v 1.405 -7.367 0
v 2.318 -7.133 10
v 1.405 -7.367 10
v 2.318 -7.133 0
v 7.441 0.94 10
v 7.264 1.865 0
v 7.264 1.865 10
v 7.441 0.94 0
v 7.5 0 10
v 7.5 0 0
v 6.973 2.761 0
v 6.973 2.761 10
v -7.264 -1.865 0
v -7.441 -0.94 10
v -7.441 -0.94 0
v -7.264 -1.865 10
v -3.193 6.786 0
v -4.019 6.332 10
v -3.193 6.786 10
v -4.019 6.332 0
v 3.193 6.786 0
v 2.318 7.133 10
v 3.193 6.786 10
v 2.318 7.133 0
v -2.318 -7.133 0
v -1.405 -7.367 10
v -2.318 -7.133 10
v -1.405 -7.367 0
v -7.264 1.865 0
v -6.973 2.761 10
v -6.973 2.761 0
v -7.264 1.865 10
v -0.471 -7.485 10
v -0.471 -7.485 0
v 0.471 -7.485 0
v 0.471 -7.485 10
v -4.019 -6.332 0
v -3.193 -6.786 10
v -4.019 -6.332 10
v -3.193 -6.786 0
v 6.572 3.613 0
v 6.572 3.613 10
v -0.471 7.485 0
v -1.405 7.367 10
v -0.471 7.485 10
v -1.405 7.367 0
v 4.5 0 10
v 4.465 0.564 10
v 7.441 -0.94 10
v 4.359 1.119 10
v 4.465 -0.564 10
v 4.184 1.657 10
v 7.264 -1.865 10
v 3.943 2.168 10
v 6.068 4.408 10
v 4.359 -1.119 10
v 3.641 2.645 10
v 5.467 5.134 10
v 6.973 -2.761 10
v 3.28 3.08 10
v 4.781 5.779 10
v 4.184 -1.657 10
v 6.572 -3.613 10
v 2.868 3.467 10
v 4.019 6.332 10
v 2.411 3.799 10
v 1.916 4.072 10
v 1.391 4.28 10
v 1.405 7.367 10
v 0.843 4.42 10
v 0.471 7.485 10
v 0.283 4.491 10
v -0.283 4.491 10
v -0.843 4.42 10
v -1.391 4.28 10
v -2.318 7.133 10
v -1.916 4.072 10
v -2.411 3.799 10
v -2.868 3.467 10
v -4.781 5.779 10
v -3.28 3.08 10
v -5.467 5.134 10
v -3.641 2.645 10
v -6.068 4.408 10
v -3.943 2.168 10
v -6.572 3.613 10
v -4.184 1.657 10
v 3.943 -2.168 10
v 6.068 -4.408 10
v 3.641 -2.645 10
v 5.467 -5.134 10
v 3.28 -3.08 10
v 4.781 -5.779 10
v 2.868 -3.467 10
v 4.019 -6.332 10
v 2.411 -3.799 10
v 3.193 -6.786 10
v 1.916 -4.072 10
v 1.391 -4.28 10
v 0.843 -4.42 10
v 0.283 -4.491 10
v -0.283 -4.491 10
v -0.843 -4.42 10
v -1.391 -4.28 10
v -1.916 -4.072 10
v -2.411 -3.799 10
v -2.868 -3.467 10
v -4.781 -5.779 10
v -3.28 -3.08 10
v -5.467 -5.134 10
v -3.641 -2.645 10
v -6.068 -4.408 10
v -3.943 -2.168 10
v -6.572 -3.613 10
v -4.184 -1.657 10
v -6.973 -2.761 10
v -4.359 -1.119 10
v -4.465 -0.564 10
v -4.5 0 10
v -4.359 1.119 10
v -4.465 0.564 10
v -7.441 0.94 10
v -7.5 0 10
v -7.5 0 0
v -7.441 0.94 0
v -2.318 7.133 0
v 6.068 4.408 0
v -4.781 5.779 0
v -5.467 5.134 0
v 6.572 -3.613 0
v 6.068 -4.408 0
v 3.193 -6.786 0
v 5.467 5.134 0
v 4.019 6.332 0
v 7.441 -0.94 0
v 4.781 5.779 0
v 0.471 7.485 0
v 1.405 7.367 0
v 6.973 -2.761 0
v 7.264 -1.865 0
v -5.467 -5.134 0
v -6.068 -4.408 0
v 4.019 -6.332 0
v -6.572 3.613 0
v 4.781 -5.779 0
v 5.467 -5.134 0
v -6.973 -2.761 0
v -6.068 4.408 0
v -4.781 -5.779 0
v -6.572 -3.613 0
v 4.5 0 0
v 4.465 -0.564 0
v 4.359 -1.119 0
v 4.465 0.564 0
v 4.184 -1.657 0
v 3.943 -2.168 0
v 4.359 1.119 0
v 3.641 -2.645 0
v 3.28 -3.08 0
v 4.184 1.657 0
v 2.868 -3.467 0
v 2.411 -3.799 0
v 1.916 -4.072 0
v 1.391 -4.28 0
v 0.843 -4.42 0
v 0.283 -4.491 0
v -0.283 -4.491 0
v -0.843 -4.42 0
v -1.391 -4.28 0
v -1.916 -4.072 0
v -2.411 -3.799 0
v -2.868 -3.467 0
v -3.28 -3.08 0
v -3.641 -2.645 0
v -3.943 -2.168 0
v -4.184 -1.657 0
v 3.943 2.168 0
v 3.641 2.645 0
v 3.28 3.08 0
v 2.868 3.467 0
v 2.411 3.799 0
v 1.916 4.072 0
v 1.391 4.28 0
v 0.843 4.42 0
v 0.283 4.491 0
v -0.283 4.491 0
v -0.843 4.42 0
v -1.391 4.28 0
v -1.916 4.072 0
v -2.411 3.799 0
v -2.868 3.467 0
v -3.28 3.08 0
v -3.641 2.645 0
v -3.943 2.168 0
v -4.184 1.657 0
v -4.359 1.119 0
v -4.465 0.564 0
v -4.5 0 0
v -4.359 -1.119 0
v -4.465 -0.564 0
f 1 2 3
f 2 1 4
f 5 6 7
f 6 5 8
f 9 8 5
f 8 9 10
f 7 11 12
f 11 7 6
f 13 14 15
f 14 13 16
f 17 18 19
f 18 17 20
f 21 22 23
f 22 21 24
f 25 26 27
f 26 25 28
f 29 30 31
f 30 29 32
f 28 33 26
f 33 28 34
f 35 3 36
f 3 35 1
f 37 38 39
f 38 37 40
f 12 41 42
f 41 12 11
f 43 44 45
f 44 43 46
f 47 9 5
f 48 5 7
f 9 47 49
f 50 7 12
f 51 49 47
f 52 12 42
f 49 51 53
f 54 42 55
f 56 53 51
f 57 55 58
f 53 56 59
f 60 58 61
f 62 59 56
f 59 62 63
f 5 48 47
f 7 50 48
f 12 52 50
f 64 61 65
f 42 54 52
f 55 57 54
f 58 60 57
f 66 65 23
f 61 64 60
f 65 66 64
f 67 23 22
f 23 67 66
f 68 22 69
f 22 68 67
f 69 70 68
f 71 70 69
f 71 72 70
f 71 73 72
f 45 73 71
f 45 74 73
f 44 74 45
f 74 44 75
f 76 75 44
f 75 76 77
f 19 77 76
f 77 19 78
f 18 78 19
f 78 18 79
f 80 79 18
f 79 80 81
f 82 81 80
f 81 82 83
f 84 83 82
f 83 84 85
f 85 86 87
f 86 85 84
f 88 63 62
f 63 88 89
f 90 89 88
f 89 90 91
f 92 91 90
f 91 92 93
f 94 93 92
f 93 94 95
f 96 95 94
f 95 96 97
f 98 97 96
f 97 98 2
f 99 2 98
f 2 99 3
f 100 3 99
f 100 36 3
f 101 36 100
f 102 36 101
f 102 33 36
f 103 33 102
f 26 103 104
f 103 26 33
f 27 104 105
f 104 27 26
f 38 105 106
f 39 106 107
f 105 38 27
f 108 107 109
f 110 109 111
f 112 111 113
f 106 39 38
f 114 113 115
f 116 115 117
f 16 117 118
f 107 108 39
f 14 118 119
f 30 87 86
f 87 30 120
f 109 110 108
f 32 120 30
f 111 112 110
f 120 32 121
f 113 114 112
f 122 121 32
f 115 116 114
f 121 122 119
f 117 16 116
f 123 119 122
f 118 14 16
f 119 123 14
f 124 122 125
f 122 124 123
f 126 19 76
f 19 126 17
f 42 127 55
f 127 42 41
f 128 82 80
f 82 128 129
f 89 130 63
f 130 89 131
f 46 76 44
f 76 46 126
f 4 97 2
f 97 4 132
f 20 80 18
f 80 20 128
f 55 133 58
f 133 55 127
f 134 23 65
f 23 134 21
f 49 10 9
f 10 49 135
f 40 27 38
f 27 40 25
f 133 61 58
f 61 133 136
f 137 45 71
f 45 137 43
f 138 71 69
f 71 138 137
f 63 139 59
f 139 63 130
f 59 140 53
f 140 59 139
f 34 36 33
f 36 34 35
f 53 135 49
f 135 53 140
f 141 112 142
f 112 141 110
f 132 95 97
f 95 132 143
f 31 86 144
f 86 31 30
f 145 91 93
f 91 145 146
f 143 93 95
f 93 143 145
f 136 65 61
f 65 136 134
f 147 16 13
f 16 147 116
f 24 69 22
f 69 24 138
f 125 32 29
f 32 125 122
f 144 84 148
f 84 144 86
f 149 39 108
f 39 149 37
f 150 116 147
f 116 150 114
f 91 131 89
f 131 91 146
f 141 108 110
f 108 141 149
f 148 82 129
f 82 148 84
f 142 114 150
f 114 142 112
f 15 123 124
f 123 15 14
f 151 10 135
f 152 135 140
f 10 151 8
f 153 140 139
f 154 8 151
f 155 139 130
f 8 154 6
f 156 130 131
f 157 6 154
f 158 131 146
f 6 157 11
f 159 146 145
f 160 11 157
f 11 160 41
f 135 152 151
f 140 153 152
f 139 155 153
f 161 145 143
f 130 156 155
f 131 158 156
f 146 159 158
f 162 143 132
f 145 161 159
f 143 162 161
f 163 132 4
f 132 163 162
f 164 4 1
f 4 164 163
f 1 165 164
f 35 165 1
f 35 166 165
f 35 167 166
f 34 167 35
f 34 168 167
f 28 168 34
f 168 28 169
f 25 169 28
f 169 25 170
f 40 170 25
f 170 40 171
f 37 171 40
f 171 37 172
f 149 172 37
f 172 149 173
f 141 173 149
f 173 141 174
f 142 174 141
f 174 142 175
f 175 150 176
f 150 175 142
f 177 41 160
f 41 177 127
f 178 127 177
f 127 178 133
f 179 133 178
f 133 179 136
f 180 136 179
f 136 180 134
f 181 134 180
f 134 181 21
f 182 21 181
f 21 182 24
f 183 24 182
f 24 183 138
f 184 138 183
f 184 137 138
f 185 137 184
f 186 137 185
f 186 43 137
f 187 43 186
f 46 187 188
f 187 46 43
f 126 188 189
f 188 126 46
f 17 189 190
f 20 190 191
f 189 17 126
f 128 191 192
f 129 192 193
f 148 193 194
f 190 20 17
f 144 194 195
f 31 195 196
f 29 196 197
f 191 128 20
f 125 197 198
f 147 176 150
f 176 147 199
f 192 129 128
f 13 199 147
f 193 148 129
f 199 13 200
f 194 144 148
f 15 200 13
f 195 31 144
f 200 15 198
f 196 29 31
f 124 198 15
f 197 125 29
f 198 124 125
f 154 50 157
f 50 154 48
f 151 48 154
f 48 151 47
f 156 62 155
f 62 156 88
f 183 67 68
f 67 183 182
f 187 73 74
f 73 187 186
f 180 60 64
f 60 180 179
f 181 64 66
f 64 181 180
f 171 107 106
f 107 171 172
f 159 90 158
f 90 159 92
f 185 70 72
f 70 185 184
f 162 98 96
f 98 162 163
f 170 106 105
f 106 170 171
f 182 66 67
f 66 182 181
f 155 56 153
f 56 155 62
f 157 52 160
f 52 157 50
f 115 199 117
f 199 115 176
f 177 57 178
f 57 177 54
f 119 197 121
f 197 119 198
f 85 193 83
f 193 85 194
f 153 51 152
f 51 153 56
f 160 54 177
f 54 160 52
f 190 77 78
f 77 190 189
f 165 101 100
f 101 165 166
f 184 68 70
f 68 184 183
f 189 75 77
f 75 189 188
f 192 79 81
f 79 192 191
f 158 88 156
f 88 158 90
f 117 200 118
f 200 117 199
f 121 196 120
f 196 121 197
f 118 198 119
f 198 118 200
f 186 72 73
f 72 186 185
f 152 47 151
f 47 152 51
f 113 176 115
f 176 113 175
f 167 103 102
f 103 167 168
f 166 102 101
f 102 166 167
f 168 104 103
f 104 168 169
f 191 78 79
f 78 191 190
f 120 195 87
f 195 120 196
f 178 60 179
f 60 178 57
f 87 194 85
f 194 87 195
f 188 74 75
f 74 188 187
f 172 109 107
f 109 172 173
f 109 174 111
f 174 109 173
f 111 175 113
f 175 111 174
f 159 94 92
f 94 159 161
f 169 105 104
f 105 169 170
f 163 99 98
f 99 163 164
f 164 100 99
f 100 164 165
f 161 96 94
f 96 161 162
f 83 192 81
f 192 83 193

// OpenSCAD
$fn = 50;

difference(){
cylinder(10, r=7.5, true);
translate([0,0,-1]){
cylinder(12, r=4.5, true);
}}
